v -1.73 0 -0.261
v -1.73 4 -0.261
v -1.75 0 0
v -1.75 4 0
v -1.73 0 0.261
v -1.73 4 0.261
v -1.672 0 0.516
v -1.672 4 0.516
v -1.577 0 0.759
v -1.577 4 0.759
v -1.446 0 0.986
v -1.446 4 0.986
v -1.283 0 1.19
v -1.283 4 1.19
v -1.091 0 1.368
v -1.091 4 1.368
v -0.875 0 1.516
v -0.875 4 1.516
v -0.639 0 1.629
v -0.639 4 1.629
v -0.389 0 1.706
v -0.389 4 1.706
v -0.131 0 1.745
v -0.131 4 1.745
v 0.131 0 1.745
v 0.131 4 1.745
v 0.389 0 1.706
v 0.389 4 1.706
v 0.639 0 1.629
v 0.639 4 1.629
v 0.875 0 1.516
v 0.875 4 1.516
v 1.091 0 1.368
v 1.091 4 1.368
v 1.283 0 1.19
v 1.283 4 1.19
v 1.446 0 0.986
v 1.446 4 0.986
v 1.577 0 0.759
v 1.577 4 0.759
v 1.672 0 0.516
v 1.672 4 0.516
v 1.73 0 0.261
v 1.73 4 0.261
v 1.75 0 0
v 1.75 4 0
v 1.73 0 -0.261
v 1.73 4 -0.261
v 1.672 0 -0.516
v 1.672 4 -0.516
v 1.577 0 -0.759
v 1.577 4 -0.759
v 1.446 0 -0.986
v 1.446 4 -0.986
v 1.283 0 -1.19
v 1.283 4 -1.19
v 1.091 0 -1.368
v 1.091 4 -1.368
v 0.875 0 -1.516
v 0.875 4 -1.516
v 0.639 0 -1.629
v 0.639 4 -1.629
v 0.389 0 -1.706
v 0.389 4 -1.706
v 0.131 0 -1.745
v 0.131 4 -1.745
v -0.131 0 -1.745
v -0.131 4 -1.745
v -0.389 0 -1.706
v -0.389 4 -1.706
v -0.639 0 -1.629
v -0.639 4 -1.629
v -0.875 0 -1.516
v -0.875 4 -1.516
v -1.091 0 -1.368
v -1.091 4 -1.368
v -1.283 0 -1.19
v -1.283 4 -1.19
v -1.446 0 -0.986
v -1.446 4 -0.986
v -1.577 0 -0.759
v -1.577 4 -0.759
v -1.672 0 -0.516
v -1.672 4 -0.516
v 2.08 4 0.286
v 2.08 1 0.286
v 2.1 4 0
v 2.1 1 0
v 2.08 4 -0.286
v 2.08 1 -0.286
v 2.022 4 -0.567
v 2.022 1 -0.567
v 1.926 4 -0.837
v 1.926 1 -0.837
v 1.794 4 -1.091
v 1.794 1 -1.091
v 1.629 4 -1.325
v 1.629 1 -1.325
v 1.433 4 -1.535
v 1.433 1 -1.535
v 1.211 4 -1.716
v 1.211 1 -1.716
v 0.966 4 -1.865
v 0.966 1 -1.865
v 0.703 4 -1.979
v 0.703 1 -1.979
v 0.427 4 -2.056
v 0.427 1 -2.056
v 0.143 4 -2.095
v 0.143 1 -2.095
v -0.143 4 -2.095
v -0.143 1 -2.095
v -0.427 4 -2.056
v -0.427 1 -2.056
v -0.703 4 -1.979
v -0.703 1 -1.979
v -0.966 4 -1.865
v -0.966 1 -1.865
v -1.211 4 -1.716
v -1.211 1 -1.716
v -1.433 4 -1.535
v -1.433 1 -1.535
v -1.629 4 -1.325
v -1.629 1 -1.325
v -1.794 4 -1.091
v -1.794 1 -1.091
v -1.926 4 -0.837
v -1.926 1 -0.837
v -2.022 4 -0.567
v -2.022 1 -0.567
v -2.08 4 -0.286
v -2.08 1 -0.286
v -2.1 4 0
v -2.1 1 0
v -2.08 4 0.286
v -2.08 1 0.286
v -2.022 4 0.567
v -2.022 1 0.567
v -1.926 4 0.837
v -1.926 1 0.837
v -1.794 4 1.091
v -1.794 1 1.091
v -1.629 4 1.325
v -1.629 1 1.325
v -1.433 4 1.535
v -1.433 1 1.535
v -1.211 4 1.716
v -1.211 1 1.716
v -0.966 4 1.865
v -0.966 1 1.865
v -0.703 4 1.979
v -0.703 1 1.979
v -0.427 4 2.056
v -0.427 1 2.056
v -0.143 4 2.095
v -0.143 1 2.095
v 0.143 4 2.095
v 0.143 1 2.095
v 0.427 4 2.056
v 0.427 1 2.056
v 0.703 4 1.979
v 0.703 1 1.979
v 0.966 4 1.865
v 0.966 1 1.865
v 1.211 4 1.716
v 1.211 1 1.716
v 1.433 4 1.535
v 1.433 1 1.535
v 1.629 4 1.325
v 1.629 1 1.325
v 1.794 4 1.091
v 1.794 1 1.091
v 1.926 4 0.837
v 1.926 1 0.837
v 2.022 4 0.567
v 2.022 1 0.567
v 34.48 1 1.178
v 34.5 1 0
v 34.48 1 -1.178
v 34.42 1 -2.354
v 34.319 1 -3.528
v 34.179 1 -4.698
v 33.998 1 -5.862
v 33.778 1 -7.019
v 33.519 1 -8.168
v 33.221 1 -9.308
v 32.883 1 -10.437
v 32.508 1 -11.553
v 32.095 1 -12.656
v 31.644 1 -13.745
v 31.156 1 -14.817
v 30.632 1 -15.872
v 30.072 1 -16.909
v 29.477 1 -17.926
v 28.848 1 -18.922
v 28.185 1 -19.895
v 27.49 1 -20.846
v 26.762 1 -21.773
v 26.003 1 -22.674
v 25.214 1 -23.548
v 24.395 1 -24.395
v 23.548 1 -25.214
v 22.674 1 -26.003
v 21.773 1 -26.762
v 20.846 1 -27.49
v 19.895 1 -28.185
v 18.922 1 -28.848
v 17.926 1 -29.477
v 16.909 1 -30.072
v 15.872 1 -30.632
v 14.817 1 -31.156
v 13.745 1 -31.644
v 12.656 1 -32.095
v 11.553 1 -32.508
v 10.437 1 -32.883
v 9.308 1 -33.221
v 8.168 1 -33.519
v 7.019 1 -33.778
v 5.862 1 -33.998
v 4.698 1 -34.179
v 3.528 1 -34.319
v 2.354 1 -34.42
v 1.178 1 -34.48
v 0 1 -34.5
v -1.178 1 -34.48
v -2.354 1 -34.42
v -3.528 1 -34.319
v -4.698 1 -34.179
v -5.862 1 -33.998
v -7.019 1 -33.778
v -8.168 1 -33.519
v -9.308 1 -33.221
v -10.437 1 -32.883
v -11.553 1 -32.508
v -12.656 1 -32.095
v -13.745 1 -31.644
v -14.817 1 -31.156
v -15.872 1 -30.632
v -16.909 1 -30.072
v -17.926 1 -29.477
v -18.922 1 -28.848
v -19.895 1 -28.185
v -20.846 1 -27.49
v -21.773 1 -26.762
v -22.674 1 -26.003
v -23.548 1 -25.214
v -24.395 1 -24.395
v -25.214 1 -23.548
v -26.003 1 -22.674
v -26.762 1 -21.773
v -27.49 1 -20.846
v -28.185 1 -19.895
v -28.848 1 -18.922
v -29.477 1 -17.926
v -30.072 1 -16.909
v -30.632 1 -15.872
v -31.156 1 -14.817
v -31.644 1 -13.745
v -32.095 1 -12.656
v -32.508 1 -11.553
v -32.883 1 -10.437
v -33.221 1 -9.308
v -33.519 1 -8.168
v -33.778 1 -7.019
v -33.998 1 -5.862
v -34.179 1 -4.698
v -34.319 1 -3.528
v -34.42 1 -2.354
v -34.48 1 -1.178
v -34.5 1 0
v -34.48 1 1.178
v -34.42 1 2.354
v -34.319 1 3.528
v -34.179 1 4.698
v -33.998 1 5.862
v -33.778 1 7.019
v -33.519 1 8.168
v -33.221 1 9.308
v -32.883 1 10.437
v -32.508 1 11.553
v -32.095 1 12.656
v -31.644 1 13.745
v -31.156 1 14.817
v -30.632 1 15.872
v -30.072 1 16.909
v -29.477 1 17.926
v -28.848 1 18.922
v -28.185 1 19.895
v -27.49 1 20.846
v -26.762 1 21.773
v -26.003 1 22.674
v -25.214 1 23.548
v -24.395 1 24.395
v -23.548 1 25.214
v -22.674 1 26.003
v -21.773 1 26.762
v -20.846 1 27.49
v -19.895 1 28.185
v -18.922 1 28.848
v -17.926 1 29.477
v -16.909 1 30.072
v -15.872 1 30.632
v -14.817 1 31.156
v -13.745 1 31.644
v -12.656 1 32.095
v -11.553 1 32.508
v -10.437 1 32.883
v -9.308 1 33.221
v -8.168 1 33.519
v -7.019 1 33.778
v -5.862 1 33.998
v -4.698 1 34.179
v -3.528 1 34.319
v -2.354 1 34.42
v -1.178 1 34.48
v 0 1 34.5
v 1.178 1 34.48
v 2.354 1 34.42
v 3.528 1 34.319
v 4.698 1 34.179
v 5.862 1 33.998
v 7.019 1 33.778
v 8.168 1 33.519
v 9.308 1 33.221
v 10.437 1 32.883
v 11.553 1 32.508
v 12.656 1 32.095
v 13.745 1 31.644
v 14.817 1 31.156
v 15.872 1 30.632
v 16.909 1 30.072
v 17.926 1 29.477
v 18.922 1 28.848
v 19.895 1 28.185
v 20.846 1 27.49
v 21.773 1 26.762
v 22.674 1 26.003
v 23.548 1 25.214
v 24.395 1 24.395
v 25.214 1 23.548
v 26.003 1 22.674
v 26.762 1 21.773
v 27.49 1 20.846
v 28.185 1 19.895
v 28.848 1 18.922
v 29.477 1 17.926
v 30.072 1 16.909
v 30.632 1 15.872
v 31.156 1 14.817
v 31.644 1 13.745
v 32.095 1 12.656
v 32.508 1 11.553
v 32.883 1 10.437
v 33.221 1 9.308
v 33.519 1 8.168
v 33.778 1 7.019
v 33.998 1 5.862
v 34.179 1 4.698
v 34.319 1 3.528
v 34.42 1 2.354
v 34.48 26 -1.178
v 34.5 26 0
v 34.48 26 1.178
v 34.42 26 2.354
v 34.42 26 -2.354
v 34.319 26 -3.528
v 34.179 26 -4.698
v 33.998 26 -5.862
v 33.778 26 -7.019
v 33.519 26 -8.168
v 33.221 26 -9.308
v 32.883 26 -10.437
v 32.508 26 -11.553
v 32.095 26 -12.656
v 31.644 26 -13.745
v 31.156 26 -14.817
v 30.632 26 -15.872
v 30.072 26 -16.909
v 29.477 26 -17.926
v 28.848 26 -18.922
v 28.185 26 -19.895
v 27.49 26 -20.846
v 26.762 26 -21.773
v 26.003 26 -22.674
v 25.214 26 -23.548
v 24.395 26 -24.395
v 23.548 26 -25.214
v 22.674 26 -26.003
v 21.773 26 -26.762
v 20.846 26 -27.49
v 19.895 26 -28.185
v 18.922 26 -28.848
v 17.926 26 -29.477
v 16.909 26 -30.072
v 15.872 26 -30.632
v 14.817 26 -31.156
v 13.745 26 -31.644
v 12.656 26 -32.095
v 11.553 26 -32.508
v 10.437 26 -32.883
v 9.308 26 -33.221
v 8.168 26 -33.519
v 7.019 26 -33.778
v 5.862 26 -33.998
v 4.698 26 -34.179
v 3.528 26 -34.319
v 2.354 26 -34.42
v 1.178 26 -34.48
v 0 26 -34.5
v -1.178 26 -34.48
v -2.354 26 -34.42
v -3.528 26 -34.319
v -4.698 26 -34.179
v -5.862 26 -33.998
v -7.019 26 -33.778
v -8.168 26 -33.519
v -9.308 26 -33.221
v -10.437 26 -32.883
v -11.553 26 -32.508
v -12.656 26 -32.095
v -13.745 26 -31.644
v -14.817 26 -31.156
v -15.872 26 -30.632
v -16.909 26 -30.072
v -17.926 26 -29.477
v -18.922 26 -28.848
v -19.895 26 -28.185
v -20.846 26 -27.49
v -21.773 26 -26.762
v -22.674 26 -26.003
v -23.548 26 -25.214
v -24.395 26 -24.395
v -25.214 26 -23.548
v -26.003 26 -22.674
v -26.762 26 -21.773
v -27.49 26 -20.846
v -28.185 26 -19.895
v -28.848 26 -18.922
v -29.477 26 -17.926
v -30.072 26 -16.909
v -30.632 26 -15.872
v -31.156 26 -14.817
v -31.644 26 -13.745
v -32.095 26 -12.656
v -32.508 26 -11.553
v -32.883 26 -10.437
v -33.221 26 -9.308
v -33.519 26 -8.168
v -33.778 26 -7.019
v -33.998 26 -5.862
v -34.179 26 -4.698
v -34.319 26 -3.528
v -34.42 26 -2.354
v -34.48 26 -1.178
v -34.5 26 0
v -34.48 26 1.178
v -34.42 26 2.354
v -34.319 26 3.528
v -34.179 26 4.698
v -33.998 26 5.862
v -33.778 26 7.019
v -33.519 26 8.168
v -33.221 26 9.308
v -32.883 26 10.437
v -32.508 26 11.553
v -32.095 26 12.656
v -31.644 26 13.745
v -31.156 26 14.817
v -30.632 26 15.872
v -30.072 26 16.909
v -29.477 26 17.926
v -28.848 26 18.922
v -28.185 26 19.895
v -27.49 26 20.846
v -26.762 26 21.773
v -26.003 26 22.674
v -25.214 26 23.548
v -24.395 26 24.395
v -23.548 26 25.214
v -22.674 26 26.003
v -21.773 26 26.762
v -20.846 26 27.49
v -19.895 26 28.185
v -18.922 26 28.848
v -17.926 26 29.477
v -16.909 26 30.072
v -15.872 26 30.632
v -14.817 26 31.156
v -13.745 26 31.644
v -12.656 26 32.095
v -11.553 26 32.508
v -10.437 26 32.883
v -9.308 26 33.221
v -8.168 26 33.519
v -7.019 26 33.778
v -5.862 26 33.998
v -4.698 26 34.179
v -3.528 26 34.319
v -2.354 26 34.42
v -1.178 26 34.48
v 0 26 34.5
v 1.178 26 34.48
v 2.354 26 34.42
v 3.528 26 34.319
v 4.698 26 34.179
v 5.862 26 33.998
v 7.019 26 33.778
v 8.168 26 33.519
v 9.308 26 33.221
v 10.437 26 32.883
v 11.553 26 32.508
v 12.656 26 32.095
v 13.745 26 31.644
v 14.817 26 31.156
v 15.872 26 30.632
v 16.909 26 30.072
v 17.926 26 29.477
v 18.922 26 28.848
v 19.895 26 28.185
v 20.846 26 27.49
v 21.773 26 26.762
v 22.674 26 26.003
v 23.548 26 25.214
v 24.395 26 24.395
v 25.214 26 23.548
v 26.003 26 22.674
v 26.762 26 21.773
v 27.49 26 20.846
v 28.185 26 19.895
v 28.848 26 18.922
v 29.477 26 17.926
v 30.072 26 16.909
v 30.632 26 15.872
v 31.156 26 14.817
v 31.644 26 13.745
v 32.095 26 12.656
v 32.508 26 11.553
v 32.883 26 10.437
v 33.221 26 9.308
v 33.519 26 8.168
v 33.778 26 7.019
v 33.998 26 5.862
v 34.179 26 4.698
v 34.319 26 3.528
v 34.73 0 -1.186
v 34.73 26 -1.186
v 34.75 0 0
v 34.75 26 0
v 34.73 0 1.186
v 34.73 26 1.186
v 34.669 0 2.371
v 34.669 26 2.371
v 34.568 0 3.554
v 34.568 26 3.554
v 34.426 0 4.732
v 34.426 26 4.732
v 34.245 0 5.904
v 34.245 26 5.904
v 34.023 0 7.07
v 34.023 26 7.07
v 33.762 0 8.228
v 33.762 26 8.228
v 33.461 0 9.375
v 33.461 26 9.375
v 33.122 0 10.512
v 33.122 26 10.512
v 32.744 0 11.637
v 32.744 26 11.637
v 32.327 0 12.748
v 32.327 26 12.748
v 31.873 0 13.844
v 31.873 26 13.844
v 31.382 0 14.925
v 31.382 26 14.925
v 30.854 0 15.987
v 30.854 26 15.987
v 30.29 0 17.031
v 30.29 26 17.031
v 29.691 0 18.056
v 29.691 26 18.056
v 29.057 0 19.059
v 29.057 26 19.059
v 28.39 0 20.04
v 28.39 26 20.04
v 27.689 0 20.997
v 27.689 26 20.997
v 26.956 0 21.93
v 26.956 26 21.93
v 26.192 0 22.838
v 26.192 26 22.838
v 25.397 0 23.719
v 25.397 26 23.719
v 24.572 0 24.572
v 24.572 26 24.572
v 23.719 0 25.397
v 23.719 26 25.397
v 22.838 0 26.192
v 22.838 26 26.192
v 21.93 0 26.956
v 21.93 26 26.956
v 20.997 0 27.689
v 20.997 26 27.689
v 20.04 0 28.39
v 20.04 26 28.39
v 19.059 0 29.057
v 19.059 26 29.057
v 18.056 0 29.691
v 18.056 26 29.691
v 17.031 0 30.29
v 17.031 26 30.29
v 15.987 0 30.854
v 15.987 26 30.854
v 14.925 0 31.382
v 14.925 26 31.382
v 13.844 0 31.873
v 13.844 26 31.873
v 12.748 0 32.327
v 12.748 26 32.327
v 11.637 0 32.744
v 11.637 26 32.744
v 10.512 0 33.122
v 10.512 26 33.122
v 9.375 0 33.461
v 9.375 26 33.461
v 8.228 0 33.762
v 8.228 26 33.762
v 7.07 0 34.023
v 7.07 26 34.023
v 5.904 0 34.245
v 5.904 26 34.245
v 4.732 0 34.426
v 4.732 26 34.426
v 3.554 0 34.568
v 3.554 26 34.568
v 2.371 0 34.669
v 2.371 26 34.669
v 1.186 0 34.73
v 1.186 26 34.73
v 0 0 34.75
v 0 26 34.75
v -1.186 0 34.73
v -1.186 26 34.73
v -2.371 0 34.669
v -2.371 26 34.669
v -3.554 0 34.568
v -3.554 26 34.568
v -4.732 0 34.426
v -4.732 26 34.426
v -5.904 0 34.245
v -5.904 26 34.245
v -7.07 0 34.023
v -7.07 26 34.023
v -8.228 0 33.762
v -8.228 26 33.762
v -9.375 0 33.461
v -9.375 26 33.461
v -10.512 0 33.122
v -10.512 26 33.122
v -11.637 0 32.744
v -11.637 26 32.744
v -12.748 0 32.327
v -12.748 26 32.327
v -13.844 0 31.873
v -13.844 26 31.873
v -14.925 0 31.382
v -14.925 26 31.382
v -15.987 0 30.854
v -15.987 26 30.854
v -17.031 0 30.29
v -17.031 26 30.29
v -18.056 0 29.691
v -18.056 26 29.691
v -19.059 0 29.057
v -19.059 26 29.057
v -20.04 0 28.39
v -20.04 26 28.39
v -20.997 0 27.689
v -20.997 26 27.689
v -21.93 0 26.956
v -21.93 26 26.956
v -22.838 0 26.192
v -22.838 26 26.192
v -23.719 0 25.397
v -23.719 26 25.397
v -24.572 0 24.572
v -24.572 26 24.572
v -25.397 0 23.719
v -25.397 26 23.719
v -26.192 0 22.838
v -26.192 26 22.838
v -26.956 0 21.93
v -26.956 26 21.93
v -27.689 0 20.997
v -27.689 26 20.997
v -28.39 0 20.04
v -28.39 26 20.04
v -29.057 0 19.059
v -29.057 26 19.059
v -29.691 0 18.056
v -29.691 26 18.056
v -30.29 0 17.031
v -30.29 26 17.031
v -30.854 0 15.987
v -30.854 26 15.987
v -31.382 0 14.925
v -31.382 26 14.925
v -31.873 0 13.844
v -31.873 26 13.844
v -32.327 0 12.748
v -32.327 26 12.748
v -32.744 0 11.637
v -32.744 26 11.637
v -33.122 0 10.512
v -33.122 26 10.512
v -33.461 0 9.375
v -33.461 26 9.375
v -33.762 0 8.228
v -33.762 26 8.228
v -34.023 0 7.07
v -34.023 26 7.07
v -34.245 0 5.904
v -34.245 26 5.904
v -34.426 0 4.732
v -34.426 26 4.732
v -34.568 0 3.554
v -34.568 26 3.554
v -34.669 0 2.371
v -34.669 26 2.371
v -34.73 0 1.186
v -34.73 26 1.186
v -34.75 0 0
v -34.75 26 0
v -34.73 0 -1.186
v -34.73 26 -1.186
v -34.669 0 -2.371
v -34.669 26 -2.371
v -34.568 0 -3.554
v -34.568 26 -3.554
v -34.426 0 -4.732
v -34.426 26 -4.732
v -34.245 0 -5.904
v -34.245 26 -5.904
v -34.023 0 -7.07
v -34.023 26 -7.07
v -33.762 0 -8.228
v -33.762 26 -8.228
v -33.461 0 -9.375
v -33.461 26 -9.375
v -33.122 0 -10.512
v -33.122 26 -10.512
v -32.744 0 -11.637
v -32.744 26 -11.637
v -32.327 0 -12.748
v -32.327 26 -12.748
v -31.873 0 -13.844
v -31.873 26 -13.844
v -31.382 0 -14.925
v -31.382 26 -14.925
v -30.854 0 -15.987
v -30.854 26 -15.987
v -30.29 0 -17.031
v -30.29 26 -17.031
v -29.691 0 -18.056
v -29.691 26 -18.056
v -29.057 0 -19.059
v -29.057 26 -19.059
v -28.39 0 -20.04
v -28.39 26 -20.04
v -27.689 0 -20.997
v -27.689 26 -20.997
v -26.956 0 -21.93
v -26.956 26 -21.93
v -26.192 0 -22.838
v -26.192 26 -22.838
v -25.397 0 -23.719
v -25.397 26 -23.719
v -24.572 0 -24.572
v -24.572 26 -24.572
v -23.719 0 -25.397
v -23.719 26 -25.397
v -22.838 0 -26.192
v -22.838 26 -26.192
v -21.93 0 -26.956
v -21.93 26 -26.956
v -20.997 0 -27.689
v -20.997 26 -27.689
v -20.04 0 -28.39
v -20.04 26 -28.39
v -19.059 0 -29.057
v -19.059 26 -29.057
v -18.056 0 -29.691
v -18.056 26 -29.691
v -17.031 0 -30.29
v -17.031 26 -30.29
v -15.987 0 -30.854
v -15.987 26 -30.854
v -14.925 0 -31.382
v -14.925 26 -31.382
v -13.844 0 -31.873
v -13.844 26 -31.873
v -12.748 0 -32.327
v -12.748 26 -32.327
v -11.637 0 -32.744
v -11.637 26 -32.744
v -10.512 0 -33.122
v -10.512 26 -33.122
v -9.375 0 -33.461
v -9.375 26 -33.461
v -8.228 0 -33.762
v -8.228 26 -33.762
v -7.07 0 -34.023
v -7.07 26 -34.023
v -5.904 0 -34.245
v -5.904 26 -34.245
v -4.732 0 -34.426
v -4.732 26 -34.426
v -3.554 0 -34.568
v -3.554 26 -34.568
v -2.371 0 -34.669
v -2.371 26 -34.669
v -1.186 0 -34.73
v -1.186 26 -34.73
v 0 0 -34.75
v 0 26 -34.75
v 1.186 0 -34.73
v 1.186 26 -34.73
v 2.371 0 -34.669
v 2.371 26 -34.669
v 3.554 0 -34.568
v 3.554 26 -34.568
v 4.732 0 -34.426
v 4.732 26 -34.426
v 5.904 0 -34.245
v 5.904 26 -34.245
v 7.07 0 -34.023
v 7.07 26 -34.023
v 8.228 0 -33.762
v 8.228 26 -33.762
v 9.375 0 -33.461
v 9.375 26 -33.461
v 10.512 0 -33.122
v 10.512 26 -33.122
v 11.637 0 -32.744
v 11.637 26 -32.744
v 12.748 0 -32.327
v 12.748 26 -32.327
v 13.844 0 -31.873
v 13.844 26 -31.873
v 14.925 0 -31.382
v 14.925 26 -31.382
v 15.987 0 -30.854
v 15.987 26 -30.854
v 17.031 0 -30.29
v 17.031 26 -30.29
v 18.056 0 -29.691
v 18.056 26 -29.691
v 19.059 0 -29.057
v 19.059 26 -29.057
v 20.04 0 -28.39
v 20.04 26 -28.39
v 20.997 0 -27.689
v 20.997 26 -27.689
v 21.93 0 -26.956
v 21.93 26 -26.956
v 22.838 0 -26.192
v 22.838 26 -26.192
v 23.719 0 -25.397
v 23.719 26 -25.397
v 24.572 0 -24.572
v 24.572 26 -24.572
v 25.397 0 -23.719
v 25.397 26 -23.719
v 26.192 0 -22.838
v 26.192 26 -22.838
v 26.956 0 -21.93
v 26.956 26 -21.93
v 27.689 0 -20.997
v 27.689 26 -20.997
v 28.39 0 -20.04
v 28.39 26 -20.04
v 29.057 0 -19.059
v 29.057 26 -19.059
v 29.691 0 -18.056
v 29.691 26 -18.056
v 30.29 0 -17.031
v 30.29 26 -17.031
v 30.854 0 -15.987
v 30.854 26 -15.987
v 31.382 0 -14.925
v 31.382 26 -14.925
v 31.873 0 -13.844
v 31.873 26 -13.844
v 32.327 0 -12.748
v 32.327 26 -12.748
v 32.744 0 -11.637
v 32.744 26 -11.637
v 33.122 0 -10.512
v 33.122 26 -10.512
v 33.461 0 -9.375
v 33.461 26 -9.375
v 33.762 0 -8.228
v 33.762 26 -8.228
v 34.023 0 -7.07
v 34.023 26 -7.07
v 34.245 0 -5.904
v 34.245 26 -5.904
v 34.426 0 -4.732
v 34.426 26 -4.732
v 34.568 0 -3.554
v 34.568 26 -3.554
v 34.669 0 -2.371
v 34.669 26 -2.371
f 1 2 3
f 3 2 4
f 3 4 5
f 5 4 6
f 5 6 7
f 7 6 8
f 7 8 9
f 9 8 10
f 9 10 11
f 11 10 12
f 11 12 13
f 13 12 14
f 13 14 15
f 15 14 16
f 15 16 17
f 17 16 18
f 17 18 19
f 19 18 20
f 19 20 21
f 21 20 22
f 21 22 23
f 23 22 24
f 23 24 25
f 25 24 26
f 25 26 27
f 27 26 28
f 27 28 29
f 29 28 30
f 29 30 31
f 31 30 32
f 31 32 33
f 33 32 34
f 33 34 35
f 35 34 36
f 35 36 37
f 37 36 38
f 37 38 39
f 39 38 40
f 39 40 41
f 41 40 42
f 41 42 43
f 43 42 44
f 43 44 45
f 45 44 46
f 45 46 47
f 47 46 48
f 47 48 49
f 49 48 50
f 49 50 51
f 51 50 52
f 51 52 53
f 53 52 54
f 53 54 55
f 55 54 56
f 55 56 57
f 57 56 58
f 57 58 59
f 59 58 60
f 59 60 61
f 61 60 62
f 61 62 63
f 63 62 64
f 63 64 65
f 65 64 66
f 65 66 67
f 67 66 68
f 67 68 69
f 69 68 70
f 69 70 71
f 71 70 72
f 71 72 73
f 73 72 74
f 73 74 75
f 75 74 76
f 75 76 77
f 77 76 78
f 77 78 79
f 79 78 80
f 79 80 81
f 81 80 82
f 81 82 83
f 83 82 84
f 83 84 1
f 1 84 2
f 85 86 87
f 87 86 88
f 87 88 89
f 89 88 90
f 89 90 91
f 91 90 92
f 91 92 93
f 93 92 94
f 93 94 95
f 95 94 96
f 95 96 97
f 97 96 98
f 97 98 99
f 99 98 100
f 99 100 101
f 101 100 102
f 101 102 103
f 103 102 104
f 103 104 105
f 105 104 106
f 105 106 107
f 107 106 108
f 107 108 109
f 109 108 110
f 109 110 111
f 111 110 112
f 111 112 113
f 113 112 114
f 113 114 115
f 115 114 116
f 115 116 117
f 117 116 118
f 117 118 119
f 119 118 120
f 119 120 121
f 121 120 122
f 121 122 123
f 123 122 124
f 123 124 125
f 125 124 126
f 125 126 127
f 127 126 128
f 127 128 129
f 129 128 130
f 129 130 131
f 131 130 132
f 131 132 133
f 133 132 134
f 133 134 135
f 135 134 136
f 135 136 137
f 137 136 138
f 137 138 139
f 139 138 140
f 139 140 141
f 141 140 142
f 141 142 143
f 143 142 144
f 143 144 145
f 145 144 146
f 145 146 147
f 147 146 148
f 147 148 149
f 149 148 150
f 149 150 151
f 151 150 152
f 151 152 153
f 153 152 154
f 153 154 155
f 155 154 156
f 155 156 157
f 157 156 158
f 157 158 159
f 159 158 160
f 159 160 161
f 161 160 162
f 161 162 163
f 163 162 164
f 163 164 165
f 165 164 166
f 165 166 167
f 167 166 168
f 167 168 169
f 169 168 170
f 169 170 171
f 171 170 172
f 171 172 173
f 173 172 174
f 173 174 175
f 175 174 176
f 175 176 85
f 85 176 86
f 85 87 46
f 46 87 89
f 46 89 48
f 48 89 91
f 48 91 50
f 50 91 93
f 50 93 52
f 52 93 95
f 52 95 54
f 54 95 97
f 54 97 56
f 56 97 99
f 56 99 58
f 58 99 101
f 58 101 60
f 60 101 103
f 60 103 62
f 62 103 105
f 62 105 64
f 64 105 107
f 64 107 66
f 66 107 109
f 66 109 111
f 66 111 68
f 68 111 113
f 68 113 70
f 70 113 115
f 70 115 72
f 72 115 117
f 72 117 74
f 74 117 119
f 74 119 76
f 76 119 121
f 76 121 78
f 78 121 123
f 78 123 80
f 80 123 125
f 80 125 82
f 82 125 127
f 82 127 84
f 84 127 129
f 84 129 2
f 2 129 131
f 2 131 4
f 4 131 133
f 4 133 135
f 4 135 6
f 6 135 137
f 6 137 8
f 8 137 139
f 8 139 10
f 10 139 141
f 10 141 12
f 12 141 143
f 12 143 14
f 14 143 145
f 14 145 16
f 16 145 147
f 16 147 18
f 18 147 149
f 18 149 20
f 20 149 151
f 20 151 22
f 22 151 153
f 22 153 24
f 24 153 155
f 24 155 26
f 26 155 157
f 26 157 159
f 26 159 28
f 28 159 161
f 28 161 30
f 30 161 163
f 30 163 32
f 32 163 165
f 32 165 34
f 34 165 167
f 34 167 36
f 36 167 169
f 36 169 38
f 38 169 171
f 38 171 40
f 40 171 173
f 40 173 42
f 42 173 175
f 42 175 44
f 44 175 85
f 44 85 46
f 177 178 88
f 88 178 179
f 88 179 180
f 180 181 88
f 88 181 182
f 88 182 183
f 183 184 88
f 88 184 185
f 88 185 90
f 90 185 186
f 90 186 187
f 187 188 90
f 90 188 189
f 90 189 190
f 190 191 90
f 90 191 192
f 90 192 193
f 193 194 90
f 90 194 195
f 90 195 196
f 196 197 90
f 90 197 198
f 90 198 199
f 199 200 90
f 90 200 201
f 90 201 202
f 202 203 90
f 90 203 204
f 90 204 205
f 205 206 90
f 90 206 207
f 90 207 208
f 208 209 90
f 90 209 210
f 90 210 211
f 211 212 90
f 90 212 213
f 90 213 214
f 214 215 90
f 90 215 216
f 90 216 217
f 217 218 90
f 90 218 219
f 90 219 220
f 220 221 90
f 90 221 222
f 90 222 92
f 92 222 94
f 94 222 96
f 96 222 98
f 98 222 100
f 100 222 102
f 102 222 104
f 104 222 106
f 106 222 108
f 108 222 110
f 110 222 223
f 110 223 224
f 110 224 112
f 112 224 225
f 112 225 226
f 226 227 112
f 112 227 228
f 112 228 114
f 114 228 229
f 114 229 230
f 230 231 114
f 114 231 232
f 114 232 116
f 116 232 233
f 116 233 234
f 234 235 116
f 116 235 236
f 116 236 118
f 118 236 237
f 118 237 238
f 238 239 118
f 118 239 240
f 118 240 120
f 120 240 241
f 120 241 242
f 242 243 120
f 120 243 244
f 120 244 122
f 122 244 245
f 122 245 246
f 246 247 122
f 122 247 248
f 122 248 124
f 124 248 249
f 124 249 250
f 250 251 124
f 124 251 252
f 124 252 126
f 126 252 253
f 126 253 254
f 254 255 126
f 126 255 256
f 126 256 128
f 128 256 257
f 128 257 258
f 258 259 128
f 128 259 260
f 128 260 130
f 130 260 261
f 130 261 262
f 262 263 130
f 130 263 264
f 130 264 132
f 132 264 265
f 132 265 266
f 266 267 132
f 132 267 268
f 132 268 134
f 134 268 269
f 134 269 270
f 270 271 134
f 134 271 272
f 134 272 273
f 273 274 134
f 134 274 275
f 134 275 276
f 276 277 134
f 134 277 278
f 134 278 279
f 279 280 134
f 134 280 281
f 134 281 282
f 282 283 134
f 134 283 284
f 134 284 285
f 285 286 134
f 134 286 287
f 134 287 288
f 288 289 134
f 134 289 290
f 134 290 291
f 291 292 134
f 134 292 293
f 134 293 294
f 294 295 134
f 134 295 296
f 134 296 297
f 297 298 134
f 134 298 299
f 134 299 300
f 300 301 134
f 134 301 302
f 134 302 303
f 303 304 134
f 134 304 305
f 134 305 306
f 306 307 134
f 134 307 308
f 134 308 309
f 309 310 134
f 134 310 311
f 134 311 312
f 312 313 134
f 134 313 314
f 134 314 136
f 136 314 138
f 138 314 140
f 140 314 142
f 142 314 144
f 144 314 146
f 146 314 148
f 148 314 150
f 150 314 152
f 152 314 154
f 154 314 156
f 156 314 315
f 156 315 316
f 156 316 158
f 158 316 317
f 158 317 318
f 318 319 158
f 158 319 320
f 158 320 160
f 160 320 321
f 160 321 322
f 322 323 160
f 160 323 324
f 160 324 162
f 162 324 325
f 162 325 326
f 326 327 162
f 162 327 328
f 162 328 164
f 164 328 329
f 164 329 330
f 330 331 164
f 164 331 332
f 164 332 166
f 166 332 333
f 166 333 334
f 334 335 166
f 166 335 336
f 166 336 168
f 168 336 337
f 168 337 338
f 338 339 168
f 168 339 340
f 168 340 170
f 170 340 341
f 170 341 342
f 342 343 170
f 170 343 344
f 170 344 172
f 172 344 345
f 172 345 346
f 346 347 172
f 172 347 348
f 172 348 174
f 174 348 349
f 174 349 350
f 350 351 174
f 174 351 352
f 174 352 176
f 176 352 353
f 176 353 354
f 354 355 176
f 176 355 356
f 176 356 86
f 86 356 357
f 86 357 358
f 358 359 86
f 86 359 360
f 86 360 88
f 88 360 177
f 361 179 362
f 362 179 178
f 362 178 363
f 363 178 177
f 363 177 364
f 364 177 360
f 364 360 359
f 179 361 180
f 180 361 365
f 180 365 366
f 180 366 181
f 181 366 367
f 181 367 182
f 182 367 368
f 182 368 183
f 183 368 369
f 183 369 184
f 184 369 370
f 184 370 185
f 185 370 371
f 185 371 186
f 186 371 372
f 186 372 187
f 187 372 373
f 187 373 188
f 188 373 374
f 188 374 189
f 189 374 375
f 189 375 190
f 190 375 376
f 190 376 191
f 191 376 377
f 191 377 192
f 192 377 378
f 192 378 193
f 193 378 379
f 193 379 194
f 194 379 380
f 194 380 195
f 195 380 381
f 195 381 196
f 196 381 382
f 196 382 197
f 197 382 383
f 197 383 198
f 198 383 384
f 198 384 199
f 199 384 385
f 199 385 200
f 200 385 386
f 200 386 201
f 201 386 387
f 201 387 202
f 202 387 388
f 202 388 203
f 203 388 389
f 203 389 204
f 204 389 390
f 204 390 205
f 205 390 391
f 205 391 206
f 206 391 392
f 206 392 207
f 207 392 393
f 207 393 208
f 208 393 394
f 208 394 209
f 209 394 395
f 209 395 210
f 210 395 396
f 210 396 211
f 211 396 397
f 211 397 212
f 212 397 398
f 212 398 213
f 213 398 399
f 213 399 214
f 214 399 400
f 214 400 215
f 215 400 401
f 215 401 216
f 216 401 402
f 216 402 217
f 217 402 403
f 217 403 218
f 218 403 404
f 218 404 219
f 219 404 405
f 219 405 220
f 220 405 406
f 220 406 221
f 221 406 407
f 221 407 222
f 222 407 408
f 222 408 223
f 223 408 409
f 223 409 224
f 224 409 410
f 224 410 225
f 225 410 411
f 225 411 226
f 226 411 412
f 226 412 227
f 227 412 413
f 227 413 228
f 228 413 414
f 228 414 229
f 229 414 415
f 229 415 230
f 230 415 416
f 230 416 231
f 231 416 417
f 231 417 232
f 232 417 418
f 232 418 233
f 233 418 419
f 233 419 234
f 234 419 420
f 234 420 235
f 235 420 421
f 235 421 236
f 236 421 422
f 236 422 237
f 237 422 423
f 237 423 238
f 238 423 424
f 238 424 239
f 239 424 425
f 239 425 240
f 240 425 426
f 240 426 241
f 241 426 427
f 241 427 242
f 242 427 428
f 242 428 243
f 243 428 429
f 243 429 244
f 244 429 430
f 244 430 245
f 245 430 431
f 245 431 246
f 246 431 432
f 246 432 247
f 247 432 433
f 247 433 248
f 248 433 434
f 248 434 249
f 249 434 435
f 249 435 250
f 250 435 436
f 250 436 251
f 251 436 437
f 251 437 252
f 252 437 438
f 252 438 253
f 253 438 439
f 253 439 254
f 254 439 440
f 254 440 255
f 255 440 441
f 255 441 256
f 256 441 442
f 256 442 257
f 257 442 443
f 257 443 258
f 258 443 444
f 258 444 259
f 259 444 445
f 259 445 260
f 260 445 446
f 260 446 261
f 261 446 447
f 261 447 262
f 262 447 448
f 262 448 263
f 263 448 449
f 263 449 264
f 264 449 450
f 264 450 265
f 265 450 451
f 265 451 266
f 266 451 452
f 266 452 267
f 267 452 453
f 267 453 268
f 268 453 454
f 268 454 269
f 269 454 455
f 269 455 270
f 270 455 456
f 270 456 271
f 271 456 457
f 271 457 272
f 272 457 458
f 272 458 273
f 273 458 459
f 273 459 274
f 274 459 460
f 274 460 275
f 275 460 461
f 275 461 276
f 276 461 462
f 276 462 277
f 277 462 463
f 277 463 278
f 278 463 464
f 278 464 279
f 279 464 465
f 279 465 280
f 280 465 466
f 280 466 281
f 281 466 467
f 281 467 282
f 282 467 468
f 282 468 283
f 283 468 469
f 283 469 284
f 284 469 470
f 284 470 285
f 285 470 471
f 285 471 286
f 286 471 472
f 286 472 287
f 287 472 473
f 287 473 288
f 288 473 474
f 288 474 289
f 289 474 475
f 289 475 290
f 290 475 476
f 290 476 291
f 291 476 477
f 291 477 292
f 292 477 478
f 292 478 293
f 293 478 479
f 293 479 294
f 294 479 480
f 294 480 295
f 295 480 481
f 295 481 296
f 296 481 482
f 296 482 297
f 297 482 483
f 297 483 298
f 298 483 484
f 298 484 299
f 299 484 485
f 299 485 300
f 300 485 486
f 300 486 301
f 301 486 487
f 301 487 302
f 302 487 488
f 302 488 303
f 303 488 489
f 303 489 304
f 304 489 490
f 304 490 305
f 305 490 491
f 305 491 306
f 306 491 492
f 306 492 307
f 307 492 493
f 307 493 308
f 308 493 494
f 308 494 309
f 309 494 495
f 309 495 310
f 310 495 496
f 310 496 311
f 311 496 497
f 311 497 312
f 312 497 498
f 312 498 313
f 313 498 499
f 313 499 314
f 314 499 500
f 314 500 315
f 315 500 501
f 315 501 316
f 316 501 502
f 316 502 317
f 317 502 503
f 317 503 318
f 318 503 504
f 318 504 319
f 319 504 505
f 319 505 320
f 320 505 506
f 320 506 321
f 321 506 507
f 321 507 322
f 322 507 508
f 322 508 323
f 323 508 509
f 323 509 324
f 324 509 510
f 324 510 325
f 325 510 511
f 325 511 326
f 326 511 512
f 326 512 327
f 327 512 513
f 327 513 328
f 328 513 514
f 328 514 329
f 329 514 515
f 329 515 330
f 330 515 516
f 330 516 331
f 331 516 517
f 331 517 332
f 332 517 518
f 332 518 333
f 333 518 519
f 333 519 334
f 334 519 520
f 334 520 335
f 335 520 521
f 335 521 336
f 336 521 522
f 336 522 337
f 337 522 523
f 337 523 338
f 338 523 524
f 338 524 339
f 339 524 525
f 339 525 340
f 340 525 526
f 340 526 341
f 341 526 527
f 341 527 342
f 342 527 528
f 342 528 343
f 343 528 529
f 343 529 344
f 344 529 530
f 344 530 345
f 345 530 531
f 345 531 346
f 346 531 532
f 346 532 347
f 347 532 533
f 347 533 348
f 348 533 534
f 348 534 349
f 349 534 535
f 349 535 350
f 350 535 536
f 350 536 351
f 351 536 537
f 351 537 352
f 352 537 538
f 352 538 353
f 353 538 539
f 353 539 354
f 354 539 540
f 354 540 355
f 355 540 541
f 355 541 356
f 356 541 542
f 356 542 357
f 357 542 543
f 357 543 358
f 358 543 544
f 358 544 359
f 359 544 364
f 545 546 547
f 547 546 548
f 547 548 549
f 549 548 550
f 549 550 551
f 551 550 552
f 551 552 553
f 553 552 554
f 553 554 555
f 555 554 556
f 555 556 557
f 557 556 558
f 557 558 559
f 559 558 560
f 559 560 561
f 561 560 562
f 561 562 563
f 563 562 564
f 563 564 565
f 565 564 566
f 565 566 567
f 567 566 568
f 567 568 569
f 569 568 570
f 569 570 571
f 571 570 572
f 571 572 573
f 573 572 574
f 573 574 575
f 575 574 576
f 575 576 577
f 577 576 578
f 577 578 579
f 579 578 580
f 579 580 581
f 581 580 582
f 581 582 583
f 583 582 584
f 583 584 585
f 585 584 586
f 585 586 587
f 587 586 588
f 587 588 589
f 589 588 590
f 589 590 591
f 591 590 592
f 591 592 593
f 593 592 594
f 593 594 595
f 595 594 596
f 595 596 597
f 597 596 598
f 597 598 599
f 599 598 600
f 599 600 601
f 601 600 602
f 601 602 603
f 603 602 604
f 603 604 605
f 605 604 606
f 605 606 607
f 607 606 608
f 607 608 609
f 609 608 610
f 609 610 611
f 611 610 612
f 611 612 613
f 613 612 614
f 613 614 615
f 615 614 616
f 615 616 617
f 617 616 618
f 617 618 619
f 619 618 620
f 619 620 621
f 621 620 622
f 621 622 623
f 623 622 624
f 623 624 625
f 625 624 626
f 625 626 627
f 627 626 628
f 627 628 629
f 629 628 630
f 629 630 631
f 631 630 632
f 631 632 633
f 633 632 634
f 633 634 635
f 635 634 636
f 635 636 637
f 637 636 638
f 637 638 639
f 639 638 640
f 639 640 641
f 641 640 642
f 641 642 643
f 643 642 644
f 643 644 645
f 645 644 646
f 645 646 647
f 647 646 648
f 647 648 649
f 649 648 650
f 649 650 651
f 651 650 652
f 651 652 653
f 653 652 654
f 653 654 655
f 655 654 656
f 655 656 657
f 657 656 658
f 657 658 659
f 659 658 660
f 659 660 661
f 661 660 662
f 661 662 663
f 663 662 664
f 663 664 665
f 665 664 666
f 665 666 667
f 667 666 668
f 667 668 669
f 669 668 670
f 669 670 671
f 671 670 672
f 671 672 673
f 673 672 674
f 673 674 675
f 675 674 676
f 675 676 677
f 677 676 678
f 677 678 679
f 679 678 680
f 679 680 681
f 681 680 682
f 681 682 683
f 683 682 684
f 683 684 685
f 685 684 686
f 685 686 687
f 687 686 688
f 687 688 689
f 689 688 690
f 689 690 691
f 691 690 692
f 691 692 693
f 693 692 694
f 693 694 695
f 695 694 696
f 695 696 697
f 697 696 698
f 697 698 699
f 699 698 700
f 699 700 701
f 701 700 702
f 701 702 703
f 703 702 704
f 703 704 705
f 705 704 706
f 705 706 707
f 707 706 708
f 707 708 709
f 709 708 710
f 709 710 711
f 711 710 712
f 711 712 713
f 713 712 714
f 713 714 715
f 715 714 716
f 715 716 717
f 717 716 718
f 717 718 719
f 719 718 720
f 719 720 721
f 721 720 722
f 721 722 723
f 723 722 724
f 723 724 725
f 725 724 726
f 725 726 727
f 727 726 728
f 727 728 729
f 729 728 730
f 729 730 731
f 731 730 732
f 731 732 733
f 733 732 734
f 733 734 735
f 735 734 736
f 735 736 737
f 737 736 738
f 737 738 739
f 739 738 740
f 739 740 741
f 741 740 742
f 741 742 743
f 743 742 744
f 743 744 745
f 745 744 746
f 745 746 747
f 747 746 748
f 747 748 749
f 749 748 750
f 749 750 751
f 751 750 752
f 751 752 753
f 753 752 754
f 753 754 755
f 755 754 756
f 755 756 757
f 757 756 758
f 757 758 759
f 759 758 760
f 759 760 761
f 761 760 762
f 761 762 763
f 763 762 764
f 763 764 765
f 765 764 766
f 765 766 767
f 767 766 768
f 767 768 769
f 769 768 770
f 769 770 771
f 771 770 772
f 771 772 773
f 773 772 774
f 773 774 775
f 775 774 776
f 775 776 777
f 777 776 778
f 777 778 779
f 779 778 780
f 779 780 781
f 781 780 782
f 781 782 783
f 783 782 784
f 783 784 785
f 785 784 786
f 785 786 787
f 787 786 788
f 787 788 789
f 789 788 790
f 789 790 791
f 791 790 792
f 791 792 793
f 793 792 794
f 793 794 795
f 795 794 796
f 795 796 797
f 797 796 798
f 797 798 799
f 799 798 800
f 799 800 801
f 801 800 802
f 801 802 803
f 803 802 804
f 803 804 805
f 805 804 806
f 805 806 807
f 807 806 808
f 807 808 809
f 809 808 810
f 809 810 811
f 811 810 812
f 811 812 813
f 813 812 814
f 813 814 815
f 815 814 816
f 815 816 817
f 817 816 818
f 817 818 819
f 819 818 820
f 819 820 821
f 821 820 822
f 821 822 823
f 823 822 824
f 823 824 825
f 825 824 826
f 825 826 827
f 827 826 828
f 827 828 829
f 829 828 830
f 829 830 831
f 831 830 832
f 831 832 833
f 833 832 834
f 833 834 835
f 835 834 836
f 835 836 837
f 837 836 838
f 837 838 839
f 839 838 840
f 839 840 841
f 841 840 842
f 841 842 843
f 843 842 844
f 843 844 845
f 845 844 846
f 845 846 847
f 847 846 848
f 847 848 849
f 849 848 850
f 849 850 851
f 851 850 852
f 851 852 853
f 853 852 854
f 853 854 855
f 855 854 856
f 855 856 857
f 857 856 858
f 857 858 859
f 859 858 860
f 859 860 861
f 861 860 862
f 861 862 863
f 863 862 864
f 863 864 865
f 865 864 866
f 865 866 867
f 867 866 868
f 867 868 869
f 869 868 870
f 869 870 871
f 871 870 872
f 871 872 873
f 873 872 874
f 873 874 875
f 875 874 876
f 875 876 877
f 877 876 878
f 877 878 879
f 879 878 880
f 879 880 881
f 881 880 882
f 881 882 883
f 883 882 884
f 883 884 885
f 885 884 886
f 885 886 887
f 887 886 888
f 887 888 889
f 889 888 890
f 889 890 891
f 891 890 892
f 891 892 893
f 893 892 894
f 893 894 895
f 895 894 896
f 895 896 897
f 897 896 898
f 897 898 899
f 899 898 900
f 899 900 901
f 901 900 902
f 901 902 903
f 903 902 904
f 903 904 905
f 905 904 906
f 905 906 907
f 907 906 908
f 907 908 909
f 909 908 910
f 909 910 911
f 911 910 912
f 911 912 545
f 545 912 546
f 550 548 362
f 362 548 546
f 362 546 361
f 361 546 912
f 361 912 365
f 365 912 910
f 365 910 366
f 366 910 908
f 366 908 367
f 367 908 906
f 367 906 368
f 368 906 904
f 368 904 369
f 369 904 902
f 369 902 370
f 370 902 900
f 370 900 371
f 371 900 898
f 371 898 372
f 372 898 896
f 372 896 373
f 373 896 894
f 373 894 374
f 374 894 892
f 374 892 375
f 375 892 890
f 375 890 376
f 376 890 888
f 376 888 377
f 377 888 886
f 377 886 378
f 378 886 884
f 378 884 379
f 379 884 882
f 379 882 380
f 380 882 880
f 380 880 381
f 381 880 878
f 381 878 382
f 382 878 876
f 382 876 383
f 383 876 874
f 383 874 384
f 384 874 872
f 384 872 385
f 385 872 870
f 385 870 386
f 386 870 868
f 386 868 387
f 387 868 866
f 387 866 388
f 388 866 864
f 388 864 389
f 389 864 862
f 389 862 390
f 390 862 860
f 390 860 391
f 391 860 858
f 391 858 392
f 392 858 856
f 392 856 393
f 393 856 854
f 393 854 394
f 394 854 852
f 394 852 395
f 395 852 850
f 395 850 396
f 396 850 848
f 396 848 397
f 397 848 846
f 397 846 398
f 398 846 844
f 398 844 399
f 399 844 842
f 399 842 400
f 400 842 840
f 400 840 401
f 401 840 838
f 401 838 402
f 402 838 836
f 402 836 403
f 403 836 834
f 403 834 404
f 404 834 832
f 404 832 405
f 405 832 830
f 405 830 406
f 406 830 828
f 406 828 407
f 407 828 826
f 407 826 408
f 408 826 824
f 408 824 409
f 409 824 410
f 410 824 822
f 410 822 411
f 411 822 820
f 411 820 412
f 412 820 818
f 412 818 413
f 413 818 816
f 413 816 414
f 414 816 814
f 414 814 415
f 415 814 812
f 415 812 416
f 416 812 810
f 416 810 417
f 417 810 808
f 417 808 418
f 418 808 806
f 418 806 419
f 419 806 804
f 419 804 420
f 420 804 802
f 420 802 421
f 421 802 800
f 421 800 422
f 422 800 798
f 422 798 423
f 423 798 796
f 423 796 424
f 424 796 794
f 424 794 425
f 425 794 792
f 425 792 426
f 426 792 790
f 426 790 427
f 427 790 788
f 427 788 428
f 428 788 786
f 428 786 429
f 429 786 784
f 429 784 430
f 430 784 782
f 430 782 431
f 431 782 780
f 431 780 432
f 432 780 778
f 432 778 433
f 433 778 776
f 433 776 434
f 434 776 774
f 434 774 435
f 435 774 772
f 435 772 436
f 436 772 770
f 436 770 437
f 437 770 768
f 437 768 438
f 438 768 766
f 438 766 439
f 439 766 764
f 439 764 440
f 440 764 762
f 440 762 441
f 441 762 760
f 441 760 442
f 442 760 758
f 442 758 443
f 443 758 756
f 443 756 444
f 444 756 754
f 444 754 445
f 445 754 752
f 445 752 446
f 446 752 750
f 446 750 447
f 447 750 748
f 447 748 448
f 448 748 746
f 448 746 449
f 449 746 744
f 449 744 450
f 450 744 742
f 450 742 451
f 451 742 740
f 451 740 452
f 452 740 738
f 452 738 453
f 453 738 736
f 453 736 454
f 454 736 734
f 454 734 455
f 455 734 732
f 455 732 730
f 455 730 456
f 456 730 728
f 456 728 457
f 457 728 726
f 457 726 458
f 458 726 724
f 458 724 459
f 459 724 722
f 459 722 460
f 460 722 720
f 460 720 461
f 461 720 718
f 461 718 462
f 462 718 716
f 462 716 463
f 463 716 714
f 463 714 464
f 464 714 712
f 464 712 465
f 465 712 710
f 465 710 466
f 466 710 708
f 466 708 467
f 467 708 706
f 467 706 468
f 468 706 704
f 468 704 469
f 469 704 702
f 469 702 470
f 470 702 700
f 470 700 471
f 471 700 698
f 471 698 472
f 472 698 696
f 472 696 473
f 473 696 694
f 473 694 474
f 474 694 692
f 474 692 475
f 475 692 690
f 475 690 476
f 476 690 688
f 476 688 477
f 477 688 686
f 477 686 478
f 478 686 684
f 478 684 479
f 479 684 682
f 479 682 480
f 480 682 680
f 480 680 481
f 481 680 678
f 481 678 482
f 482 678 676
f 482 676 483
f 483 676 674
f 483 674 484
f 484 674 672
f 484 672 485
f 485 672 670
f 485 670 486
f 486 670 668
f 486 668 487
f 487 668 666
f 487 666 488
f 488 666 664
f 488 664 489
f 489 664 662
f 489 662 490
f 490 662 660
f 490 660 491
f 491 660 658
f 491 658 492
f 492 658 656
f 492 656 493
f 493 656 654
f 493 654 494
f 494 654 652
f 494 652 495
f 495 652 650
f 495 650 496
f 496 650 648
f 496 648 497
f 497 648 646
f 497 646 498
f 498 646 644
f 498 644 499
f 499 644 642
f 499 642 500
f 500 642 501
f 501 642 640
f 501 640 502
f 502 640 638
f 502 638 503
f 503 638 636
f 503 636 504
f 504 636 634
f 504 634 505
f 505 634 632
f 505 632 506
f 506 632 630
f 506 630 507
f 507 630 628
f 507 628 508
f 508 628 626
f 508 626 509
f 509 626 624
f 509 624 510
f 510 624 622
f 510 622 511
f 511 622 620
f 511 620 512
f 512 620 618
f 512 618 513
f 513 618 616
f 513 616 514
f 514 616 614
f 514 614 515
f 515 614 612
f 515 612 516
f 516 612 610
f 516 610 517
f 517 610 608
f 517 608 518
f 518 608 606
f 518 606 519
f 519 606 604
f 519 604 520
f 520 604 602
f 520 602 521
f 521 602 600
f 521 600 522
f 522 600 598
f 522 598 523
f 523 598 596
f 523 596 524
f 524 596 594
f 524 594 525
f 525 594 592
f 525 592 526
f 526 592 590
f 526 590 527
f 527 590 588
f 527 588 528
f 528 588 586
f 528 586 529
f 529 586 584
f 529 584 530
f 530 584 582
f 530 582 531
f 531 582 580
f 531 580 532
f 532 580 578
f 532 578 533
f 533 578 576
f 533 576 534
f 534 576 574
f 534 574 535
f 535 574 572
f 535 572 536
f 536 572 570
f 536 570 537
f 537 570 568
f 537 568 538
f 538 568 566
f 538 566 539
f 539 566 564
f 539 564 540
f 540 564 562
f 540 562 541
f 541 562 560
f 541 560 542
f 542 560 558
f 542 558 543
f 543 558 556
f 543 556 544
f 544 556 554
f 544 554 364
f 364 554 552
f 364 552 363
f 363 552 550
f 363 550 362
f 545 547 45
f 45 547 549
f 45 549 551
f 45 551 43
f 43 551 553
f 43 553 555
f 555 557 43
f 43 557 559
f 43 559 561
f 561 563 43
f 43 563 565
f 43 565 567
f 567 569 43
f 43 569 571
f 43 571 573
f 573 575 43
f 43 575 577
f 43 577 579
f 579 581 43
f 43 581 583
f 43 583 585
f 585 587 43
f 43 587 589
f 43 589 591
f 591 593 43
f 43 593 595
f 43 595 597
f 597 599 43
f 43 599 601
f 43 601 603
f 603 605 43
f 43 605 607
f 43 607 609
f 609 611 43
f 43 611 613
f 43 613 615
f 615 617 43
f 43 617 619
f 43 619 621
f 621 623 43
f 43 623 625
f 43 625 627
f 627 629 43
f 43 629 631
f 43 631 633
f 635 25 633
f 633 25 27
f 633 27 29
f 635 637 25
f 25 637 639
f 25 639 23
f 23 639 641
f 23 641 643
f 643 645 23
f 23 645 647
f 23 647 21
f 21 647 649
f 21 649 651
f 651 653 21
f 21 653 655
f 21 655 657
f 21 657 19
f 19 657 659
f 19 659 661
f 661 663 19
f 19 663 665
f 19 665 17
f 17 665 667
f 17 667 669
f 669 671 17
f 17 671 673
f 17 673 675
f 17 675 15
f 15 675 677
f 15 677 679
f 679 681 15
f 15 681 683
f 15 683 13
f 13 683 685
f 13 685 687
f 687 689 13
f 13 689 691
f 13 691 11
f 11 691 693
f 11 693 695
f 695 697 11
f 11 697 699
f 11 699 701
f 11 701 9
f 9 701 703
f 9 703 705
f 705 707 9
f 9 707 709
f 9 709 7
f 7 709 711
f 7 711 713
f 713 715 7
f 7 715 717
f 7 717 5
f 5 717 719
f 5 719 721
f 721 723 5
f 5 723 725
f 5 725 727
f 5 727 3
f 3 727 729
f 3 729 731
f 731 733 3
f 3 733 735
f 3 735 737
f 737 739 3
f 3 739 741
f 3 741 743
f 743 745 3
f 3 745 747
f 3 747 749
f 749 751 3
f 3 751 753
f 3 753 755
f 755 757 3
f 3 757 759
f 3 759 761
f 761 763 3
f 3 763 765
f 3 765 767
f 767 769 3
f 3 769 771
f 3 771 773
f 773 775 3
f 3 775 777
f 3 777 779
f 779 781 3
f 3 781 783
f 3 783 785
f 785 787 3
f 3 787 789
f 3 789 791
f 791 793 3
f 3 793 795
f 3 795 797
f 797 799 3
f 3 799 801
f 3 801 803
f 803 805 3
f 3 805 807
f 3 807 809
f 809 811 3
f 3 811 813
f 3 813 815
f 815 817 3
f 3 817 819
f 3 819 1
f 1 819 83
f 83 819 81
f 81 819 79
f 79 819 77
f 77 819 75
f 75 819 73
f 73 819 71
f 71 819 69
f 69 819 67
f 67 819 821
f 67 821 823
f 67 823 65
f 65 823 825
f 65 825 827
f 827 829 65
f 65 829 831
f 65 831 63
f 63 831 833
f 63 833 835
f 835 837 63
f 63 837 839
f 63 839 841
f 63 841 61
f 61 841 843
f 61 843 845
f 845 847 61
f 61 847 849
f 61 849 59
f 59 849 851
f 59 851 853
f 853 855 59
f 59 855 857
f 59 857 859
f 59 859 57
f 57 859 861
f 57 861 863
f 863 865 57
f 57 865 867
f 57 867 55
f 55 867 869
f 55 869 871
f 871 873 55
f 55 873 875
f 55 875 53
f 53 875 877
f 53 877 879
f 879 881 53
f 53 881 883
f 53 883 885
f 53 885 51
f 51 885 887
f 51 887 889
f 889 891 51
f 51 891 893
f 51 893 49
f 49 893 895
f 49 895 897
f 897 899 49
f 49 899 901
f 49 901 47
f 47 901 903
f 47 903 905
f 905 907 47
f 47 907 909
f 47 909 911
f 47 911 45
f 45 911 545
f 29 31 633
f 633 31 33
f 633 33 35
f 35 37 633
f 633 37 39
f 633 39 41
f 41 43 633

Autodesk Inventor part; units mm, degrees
ref_plane "YZ Plane" through (0, 0, 0) normal (1, 0, 0) x (0, 1, 0)
ref_plane "XZ Plane" through (0, 0, 0) normal (0, 1, 0) x (-1, 0, 0)
ref_plane "XY Plane" through (0, 0, 0) normal (0, 0, 1) x (1, 0, 0)
sketch "Boceto1" plane through (0, 0, 0) normal (0, 1, 0) x (-1, 0, 0)
  circle A0 centre (0, 0) radius 34.5
  circle A1 centre (0, 0) radius 35
  dimension "d0" = 69
  dimension "d1" = 70
extrude "Extrusión1" add sketch "Boceto1" along normal blind 1 contours A0 | A1
sketch "Boceto2" plane through (0, 1, 0) normal (0, 1, 0) x (1, 0, 0)
  circle A0 centre (0, 0) radius 34.5
  circle A1 centre (0, 0) radius 34.75
  dimension "d4" = 69
  dimension "d5" = 69.5
extrude "Extrusión2" add sketch "Boceto2" along normal blind 25
sketch "Boceto3" plane through (0, 1, 0) normal (0, 1, 0) x (1, 0, 0)
  circle A0 centre (0, 0) radius 2.1
  circle A1 centre (0, 0) radius 1.75
  dimension "d8" = 4.2
  dimension "d9" = 3.5
extrude "Extrusión3" add sketch "Boceto3" along normal blind 3
sketch "Boceto4" plane through (0, 1, 0) normal (0, 1, 0) x (1, 0, 0)
  circle A0 centre (0, 0) radius 1.75
  dimension "d14" = 3.5
extrude "Extrusión4" cut sketch "Boceto4" against normal through all
sketch "Boceto5" plane through (0, 26, 0) normal (0, 1, 0) x (1, 0, 0)
  circle A0 centre (0, 0) radius 35
  circle A1 centre (0, 0) radius 1.75 projected
  circle A2 centre (0, 0) radius 34.75
  dimension "d15" = 69.5
  dimension "d16" = 70
extrude "Extrusión5" cut sketch "Boceto5" against normal through all
properties part number "Molde_V002"
